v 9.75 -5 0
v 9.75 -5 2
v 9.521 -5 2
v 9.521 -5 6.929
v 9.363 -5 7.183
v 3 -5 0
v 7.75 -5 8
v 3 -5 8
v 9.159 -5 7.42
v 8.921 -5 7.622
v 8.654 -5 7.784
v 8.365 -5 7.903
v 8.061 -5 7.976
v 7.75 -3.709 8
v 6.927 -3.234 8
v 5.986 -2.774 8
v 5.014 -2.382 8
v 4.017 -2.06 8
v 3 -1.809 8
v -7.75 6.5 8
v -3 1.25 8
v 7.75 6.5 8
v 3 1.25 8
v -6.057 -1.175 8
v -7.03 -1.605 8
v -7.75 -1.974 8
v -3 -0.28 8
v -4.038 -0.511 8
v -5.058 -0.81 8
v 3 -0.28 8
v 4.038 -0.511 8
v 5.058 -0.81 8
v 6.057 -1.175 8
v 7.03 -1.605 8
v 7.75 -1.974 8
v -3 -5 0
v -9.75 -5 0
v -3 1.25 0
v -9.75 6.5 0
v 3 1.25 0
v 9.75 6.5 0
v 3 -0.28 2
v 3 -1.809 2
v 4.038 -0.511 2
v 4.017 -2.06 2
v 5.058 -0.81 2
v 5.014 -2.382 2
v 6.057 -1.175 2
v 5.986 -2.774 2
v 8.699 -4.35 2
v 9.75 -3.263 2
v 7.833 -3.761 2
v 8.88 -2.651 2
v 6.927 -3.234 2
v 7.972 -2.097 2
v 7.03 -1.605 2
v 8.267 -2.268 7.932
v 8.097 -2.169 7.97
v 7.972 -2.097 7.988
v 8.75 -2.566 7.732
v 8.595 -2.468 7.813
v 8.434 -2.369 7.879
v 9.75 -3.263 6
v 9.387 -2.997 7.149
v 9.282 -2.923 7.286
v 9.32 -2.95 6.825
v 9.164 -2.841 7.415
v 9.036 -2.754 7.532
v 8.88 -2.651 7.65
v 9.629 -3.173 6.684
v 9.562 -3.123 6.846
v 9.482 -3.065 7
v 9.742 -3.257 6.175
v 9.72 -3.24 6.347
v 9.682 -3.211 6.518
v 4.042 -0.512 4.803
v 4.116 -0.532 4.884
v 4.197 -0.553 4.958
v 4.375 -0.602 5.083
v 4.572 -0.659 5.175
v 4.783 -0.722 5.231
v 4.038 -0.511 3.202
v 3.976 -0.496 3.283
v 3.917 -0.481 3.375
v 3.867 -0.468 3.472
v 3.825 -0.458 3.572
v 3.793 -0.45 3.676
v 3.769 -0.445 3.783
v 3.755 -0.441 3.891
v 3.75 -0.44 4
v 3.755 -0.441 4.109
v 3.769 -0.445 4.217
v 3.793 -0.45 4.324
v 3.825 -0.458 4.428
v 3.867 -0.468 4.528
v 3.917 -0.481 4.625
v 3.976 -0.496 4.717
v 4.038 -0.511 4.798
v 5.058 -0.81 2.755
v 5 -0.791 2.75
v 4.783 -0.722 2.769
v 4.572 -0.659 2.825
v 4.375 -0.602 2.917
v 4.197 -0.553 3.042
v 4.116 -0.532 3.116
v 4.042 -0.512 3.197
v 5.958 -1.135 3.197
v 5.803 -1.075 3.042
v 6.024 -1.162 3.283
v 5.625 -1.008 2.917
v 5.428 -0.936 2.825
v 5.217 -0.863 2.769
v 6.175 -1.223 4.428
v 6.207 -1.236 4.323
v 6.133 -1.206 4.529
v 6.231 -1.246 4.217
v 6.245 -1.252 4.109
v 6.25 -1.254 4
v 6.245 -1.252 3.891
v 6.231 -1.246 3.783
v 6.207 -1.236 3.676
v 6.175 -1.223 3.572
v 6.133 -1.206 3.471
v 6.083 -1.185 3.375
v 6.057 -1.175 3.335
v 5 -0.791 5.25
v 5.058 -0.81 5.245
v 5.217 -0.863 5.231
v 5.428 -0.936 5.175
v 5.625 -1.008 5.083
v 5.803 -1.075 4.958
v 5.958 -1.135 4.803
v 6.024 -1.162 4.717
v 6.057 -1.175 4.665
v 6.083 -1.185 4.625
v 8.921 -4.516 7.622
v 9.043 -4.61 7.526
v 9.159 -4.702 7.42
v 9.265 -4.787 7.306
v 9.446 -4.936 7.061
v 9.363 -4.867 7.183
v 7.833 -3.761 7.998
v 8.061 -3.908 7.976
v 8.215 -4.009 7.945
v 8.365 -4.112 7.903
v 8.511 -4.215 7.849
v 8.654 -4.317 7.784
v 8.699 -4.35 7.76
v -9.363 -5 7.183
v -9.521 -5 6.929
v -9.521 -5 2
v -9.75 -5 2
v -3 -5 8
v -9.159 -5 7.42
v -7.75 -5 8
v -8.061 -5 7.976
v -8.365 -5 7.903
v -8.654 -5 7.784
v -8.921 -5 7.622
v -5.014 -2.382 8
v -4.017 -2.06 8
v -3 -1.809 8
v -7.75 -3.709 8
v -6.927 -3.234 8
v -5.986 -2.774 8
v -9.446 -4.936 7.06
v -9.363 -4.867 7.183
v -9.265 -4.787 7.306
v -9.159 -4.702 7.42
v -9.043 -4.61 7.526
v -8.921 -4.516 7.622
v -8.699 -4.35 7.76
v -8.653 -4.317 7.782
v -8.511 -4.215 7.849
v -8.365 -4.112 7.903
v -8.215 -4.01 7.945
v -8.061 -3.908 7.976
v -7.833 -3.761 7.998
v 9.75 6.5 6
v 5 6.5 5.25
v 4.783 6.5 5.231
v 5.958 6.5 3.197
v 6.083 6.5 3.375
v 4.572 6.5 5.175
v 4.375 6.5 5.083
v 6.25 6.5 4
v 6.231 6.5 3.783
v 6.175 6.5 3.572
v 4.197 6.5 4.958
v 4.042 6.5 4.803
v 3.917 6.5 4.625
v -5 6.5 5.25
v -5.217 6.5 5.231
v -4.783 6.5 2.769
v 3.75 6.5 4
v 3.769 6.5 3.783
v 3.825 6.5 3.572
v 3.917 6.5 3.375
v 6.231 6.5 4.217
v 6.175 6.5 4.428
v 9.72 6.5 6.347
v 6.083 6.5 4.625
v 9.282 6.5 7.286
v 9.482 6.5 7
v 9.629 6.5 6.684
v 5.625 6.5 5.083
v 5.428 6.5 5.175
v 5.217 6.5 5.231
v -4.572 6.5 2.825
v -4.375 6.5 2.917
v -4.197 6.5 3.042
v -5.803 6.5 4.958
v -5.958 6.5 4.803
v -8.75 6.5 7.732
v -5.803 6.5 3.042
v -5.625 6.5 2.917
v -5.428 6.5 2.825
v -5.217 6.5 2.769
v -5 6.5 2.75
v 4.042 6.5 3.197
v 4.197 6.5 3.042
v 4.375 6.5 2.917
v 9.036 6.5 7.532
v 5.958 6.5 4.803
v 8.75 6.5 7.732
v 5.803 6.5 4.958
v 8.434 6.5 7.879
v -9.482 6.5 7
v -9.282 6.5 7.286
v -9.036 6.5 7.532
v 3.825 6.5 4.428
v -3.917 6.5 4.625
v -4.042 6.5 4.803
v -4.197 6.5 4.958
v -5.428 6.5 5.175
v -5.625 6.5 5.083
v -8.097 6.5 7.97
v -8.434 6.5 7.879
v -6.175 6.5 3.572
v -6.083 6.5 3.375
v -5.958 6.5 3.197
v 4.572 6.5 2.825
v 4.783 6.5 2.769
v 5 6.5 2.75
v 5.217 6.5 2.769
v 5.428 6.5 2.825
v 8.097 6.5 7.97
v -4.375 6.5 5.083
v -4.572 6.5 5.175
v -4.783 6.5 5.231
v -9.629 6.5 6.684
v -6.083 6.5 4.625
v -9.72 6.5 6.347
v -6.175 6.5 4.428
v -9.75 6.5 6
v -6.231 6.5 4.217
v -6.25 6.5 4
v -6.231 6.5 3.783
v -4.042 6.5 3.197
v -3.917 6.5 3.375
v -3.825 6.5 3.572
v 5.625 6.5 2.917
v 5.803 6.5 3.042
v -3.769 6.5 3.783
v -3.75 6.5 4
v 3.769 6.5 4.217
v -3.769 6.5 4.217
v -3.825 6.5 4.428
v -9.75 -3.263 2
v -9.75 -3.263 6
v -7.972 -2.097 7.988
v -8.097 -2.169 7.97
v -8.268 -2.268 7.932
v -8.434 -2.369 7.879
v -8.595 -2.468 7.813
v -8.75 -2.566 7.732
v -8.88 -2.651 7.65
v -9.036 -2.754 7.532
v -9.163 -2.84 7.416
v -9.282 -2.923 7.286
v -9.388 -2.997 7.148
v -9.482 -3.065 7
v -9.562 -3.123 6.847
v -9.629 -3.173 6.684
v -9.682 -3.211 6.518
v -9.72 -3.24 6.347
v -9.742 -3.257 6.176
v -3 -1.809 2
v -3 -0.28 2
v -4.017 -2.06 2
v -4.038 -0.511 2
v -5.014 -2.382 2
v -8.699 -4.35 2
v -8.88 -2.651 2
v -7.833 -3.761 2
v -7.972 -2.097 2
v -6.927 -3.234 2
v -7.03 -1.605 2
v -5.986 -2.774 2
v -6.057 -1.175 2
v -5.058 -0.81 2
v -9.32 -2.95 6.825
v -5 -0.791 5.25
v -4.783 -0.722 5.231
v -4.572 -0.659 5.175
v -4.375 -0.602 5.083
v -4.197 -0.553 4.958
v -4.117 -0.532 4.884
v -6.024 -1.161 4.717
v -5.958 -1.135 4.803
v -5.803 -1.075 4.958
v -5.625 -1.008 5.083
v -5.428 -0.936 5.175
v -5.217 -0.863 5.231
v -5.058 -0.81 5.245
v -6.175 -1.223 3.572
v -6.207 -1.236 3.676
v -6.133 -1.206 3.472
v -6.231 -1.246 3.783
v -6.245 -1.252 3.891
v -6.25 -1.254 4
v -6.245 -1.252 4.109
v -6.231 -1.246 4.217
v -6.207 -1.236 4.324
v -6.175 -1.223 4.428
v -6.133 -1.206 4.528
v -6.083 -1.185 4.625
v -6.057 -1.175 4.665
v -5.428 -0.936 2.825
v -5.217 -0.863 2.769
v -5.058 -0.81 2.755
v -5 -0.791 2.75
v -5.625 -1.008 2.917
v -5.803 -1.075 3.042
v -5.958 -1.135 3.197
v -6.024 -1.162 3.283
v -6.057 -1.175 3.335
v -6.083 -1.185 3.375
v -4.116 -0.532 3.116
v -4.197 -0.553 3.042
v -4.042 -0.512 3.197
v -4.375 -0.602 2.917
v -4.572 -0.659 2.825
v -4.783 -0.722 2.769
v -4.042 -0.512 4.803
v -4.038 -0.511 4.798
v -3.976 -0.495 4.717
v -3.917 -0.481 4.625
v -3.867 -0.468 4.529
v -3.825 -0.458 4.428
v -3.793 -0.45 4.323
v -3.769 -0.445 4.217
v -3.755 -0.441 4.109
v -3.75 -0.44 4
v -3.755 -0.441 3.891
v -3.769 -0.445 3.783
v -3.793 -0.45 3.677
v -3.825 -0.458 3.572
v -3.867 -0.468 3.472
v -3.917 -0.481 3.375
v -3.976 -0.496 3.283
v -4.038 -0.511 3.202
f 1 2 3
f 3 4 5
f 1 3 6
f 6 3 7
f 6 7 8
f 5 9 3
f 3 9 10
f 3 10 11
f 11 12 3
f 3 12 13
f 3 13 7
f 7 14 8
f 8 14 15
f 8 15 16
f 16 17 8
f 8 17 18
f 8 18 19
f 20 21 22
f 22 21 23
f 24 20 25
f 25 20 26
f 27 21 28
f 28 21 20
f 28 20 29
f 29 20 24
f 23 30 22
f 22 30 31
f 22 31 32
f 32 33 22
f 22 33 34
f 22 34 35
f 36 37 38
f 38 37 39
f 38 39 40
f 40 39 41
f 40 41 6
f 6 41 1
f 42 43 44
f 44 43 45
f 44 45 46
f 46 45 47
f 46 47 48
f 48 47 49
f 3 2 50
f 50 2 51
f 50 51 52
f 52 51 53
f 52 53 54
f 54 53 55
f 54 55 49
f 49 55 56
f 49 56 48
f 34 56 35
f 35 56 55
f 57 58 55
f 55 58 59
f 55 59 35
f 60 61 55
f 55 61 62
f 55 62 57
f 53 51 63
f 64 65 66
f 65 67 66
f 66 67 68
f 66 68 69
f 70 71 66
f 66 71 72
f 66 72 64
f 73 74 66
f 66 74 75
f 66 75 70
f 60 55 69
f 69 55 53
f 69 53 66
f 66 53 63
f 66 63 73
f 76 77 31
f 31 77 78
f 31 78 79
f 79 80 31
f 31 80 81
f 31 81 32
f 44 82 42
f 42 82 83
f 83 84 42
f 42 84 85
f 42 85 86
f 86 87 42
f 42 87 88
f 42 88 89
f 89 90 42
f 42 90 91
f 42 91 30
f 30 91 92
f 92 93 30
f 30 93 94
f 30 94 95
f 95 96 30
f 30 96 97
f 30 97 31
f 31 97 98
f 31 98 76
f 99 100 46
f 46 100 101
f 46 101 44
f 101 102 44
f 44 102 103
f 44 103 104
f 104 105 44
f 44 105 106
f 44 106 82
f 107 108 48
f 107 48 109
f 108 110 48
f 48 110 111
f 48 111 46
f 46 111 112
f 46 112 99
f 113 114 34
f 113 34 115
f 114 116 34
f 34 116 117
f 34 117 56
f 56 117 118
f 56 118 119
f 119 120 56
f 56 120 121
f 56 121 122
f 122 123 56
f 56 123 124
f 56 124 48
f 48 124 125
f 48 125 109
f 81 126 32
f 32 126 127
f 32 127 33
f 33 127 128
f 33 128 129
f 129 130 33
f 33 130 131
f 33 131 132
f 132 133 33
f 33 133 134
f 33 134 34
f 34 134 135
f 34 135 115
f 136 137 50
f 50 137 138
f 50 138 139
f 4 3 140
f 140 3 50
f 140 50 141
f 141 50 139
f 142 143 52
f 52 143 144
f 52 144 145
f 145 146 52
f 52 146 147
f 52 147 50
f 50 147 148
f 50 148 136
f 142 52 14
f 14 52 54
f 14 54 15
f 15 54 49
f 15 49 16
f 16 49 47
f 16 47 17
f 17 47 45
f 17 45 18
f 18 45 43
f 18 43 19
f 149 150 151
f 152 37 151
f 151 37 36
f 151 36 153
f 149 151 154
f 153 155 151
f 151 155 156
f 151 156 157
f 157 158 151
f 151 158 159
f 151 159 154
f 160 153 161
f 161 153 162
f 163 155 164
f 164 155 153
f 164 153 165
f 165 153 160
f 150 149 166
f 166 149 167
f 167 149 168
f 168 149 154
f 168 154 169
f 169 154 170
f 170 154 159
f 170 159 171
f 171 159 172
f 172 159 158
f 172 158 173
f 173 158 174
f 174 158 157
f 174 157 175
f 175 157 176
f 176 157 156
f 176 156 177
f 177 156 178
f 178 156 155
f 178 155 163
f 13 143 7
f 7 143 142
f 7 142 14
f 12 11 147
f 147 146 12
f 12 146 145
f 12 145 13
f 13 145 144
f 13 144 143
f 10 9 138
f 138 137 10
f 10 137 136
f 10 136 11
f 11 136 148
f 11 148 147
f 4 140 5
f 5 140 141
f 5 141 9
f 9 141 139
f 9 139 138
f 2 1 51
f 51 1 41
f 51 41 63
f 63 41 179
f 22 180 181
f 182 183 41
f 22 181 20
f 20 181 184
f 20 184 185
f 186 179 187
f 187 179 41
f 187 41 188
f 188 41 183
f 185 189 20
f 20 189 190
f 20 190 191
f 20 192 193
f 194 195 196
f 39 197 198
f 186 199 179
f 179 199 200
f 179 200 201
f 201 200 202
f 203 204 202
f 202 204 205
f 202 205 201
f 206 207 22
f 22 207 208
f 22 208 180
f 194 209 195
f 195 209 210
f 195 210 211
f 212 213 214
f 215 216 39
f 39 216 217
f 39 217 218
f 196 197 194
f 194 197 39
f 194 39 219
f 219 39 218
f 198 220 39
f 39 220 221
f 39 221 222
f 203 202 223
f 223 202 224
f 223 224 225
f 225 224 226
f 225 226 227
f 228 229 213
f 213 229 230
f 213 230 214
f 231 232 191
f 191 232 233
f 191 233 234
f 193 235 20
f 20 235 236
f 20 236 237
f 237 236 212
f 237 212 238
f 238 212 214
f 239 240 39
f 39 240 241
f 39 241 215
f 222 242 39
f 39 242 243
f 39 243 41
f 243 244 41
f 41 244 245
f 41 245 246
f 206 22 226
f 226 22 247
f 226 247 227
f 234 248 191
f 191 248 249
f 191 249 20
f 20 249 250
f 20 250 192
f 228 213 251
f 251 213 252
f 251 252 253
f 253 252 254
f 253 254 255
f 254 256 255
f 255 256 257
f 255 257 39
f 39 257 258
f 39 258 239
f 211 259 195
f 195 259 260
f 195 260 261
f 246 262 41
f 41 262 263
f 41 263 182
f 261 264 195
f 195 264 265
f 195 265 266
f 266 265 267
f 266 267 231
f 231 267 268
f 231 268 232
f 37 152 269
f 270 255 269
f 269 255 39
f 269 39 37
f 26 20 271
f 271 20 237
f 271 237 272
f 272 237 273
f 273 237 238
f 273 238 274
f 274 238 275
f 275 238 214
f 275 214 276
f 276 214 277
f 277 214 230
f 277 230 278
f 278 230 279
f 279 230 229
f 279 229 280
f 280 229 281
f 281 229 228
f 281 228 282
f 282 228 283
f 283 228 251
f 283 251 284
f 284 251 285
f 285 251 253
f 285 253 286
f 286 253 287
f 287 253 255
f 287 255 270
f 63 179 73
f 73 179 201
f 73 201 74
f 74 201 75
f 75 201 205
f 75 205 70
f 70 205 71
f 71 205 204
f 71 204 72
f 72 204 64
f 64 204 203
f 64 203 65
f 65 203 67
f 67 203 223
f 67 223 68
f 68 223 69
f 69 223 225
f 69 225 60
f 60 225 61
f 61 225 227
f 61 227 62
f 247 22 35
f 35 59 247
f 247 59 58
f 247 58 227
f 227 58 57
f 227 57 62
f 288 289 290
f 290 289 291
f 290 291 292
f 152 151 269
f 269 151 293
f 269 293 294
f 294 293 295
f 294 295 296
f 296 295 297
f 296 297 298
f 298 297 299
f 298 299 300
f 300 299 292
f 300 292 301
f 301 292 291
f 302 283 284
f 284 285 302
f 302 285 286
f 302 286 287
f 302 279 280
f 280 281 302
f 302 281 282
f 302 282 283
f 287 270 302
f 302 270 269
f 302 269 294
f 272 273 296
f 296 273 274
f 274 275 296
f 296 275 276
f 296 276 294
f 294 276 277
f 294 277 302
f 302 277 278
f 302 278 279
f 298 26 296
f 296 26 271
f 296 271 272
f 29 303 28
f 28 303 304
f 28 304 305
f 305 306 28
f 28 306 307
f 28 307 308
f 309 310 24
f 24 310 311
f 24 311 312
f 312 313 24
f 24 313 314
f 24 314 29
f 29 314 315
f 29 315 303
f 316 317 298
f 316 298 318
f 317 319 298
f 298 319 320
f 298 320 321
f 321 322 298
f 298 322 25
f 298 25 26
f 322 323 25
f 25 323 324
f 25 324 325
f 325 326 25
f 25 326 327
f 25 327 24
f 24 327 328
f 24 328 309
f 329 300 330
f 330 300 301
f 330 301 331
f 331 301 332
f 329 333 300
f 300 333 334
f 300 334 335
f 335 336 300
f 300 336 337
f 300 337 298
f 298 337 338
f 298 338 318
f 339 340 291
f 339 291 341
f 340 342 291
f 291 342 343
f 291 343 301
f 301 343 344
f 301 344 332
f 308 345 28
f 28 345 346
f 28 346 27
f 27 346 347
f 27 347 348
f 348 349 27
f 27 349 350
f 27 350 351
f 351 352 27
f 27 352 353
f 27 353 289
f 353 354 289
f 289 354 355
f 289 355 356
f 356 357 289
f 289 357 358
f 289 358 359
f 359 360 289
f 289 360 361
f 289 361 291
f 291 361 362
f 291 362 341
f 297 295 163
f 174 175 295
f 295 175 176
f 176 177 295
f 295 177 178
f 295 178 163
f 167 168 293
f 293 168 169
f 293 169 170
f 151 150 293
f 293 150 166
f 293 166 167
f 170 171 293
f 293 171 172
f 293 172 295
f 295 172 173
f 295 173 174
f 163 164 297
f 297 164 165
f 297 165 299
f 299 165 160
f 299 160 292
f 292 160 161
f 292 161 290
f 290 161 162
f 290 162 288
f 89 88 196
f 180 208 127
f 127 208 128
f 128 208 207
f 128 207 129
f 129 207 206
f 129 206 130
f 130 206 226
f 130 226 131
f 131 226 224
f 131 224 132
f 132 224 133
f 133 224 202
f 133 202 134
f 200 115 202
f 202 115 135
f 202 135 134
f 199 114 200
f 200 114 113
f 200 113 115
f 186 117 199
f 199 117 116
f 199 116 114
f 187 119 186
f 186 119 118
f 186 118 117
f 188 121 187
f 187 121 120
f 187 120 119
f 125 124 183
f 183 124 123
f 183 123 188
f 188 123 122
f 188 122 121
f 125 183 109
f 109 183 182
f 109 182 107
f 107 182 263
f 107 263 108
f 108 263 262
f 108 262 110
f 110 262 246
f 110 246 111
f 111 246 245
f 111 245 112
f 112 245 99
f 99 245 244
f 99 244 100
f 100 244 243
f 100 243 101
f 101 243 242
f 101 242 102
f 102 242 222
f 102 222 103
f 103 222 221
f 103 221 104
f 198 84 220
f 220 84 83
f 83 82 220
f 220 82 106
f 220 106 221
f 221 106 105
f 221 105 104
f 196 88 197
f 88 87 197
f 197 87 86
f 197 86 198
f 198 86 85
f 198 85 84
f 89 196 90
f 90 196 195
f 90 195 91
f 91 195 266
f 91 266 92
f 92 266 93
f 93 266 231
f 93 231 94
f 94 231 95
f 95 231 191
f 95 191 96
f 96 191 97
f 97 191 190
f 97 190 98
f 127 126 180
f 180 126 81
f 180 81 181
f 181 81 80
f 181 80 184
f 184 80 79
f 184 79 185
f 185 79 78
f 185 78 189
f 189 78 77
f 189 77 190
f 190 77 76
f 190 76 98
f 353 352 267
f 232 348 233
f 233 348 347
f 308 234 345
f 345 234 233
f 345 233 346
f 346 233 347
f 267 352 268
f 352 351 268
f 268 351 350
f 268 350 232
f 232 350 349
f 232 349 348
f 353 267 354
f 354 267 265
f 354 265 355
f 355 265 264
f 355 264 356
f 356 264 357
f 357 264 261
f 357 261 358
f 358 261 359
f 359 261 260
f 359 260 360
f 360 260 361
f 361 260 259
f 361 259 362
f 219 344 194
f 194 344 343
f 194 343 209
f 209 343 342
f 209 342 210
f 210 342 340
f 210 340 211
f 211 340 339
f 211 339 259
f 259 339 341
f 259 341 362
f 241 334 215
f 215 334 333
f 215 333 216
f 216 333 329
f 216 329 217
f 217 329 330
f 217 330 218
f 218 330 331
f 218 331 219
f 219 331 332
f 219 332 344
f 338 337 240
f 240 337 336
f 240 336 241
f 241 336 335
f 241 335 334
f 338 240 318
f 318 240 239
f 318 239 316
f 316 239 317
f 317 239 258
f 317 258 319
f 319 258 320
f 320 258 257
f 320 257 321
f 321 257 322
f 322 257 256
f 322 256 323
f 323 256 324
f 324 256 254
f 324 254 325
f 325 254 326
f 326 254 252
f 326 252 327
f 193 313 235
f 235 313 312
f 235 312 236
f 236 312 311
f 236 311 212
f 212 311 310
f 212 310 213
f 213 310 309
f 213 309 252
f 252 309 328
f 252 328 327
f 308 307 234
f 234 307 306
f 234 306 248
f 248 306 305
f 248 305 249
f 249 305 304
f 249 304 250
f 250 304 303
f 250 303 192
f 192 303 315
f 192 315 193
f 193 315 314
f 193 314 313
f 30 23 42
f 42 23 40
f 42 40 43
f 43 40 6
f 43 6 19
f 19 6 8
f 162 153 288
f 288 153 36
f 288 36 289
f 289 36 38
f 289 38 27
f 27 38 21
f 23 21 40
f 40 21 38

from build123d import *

# Parameters (mm, degrees)
SKETCH1_W           = 19.5
SKETCH1_H           = 11.5
BOSS_EXTRUDE1_DEPTH = 8
FILLET1_R           = 2
SKETCH2_R           = 16.2
SKETCH2_R_2         = 14.7
CUT_EXTRUDE1_DEPTH  = 6
CUT_EXTRUDE2_REACH  = 13.5
SKETCH3_R           = 1.25
SKETCH4_W           = 6
SKETCH4_H           = 12.5
CUT_EXTRUDE3_DEPTH  = 9.0000001


with BuildPart() as part:
    # Sketch1 → Boss-Extrude1 (new body)
    with BuildSketch(Plane.XY):
        with Locations((0, 0.75)):
            Rectangle(SKETCH1_W, SKETCH1_H)
    extrude(amount=BOSS_EXTRUDE1_DEPTH)

    # Fillet1
    fillet1_edges = [part.edges().sort_by_distance(p)[0] for p in [
        (-9.75, 0.75, 8),
        (9.75, 0.75, 8),
    ]]
    fillet(fillet1_edges, radius=FILLET1_R)

    # Sketch2 → Cut-Extrude1 (cut)
    with BuildSketch(Plane.XY.offset(8)):
        with Locations((0, -16.2)):
            Circle(SKETCH2_R)
        with Locations((0, -16.2)):
            Circle(SKETCH2_R_2, mode=Mode.SUBTRACT)
    extrude(amount=-CUT_EXTRUDE1_DEPTH, mode=Mode.SUBTRACT)

    # Sketch3 → Cut-Extrude2 (cut, up to next)
    with BuildSketch(Plane(origin=(0, 6.5, 0), x_dir=(1, 0, 0), z_dir=(0, 1, 0)), mode=Mode.PRIVATE) as cut_extrude2_sk1:
        with Locations((5, -4)):
            Circle(SKETCH3_R)
    cut_extrude2_tool1 = extrude(cut_extrude2_sk1.sketch, amount=-CUT_EXTRUDE2_REACH, mode=Mode.PRIVATE) & part.part
    add(cut_extrude2_tool1.solids().sort_by_distance((5, 6.5, 4))[0], mode=Mode.SUBTRACT)
    # Sketch3 → Cut-Extrude2 (cut, up to next)
    with BuildSketch(Plane(origin=(0, 6.5, 0), x_dir=(1, 0, 0), z_dir=(0, 1, 0)), mode=Mode.PRIVATE) as cut_extrude2_sk2:
        with Locations((-5, -4)):
            Circle(SKETCH3_R)
    cut_extrude2_tool2 = extrude(cut_extrude2_sk2.sketch, amount=-CUT_EXTRUDE2_REACH, mode=Mode.PRIVATE) & part.part
    add(cut_extrude2_tool2.solids().sort_by_distance((-5, 6.5, 4))[0], mode=Mode.SUBTRACT)

    # Sketch4 → Cut-Extrude3 (cut, through all)
    with BuildSketch(Plane(origin=(0, 0, 0), x_dir=(-1, 0, 0), z_dir=(0, 0, -1))):
        with Locations((0, -5)):
            Rectangle(SKETCH4_W, SKETCH4_H)
    extrude(amount=-CUT_EXTRUDE3_DEPTH, mode=Mode.SUBTRACT)


solid = part.part
